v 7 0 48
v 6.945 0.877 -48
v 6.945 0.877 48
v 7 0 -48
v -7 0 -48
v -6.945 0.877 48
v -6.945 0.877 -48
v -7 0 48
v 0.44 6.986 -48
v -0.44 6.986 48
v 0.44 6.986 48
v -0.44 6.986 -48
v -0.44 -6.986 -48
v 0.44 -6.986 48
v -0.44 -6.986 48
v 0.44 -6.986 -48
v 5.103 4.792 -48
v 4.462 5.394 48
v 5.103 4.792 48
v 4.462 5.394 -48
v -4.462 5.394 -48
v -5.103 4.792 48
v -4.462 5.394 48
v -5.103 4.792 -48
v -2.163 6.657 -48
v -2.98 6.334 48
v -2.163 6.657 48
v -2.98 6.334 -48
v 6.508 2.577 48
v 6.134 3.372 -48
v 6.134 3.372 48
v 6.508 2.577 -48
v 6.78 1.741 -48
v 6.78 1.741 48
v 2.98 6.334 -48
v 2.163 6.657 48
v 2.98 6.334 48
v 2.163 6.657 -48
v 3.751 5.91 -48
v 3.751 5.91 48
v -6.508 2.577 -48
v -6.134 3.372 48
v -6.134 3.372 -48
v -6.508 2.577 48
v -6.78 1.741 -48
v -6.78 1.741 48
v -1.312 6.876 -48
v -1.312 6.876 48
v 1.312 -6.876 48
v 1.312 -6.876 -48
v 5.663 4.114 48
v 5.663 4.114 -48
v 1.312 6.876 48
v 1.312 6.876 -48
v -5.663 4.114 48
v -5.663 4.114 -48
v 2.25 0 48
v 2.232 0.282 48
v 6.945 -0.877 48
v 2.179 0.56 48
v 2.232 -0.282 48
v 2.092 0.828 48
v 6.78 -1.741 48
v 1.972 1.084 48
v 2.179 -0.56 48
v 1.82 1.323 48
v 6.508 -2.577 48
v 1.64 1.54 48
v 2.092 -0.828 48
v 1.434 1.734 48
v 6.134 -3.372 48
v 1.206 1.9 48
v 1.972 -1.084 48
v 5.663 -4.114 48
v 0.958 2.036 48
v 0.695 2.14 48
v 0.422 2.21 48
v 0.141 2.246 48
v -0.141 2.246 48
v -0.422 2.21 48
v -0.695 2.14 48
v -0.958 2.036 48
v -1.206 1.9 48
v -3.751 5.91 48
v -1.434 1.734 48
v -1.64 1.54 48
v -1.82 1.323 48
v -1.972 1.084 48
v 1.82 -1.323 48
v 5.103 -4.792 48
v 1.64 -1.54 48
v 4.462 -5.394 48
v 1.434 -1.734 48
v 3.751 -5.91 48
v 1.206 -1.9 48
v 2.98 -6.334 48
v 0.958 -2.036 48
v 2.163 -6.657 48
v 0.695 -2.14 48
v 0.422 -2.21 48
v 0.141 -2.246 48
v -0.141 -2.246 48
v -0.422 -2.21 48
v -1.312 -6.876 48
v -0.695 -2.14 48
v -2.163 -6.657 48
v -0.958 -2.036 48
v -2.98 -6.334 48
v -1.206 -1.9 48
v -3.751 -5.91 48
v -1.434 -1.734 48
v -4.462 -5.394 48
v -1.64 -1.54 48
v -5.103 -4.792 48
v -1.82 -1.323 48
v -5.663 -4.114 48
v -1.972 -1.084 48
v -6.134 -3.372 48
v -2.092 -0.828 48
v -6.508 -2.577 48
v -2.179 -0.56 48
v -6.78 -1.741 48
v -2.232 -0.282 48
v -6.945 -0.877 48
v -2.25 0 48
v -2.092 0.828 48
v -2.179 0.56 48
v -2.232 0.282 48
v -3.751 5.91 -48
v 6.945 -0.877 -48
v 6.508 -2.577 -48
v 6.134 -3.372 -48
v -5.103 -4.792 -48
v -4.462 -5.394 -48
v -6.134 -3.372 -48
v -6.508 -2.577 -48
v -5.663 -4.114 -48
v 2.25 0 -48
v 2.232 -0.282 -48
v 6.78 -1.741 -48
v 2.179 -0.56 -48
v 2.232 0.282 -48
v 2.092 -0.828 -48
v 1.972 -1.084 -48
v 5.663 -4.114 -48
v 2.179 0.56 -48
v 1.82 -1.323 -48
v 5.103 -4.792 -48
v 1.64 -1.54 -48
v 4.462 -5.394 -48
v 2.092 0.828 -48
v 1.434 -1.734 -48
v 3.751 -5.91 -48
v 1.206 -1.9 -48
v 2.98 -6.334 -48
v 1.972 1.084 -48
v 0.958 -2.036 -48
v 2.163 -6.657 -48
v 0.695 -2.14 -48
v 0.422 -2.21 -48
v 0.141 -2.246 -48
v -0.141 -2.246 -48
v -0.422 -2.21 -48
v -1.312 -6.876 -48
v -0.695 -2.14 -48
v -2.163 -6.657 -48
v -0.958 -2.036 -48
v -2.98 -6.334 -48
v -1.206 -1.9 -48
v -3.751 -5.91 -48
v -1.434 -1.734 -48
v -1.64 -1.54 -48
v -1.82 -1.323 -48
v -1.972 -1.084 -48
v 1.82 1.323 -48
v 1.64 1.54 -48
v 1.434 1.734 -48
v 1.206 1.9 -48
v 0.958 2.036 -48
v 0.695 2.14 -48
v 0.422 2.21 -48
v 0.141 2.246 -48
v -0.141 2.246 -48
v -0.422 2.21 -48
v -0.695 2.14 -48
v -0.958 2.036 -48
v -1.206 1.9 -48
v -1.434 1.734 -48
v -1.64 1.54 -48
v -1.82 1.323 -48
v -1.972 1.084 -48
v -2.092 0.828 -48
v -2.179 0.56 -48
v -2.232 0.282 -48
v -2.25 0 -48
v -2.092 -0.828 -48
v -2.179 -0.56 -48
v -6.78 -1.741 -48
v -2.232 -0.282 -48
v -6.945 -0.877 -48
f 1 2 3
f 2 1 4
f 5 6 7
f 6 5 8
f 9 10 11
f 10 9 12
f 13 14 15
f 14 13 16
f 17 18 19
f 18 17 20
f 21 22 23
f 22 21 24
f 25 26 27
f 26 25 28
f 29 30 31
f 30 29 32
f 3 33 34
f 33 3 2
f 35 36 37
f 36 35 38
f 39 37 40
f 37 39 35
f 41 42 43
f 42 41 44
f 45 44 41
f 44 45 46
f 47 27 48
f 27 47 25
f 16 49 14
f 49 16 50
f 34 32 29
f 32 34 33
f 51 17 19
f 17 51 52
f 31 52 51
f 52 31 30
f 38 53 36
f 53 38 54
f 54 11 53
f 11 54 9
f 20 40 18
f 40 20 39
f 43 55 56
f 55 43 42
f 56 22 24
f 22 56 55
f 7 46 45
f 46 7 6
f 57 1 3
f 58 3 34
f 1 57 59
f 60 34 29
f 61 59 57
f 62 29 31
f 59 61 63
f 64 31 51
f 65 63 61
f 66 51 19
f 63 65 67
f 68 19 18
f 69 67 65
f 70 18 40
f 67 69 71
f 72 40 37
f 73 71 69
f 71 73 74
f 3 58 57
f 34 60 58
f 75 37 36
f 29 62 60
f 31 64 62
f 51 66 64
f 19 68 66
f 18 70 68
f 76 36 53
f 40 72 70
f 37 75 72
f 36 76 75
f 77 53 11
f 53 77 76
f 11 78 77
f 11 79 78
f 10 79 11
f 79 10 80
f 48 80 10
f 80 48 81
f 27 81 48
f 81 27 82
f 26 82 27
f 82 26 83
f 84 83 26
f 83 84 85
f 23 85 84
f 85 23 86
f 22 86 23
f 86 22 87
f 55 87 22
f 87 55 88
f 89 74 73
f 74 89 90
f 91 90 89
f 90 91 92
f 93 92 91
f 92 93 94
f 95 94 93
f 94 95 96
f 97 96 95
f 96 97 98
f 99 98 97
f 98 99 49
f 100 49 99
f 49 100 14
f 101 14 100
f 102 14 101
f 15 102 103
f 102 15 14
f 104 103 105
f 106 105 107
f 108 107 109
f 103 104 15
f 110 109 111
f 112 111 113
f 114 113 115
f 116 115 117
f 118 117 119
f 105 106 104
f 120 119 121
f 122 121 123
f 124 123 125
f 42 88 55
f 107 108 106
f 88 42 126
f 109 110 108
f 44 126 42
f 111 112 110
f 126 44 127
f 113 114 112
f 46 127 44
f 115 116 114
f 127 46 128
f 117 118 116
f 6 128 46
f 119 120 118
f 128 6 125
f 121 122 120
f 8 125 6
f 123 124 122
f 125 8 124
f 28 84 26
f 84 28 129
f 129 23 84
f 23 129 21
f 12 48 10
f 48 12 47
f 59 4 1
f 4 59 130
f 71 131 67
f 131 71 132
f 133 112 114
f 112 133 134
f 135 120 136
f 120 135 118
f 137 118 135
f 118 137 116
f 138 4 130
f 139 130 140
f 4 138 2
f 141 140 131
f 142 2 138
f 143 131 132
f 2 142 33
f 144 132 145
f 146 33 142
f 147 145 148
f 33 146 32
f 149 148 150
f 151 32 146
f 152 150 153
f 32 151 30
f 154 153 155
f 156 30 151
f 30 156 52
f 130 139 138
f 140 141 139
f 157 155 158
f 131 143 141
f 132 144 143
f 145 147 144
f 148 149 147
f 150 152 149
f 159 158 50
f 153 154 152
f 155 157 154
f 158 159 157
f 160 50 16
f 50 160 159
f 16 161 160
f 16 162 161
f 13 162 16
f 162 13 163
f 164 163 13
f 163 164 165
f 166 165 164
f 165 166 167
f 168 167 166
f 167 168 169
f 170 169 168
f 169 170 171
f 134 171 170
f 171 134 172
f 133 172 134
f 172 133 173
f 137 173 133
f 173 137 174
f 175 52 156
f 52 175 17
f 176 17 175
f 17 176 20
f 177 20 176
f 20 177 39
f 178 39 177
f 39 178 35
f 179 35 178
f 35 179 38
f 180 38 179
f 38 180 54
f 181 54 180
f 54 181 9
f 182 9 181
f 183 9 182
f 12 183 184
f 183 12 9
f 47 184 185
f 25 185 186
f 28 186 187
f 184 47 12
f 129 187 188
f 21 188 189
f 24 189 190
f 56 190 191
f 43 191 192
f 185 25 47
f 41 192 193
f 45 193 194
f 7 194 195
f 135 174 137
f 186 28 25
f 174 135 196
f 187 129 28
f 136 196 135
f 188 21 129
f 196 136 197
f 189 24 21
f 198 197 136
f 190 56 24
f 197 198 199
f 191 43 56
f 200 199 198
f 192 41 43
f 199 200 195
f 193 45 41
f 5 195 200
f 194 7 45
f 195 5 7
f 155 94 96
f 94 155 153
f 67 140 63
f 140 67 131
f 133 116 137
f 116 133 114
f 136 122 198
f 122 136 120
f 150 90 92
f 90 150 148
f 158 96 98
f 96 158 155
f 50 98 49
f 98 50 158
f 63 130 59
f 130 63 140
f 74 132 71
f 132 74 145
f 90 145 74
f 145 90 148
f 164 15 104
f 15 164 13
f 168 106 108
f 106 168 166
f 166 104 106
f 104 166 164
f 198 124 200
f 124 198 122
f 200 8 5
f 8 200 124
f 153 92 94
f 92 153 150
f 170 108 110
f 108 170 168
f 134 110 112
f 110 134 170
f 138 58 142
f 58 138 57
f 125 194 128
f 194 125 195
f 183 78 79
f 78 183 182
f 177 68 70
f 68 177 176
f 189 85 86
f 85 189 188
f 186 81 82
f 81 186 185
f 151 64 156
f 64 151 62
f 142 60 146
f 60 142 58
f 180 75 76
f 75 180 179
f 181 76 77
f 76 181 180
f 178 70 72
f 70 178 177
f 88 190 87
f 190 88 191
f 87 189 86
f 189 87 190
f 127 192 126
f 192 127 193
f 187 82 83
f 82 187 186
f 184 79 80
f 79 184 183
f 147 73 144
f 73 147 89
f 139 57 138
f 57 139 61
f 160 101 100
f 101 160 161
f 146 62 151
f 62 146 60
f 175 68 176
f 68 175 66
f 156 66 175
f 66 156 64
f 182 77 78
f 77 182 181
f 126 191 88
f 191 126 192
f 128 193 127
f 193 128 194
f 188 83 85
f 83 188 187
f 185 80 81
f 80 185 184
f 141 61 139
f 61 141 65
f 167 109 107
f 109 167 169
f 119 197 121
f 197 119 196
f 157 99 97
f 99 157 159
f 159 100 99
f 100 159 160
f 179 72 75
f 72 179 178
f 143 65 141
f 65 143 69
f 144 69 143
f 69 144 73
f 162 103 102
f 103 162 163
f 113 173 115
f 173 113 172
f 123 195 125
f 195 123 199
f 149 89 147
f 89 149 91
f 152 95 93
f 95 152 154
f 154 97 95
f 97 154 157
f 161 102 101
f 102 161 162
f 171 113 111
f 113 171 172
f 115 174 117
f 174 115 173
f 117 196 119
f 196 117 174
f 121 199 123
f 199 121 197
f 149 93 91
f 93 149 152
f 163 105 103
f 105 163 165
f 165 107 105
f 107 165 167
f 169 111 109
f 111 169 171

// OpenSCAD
$fn = 50;


difference() {
	union() {
		translate(v = [0, 0, -48.0000000000]) {
			cylinder(h = 96, r = 7.0000000000);
		}
	}
	union() {
		translate(v = [0, 0, -100.0000000000]) {
			cylinder(h = 200, r = 2.2500000000);
		}
	}
}
